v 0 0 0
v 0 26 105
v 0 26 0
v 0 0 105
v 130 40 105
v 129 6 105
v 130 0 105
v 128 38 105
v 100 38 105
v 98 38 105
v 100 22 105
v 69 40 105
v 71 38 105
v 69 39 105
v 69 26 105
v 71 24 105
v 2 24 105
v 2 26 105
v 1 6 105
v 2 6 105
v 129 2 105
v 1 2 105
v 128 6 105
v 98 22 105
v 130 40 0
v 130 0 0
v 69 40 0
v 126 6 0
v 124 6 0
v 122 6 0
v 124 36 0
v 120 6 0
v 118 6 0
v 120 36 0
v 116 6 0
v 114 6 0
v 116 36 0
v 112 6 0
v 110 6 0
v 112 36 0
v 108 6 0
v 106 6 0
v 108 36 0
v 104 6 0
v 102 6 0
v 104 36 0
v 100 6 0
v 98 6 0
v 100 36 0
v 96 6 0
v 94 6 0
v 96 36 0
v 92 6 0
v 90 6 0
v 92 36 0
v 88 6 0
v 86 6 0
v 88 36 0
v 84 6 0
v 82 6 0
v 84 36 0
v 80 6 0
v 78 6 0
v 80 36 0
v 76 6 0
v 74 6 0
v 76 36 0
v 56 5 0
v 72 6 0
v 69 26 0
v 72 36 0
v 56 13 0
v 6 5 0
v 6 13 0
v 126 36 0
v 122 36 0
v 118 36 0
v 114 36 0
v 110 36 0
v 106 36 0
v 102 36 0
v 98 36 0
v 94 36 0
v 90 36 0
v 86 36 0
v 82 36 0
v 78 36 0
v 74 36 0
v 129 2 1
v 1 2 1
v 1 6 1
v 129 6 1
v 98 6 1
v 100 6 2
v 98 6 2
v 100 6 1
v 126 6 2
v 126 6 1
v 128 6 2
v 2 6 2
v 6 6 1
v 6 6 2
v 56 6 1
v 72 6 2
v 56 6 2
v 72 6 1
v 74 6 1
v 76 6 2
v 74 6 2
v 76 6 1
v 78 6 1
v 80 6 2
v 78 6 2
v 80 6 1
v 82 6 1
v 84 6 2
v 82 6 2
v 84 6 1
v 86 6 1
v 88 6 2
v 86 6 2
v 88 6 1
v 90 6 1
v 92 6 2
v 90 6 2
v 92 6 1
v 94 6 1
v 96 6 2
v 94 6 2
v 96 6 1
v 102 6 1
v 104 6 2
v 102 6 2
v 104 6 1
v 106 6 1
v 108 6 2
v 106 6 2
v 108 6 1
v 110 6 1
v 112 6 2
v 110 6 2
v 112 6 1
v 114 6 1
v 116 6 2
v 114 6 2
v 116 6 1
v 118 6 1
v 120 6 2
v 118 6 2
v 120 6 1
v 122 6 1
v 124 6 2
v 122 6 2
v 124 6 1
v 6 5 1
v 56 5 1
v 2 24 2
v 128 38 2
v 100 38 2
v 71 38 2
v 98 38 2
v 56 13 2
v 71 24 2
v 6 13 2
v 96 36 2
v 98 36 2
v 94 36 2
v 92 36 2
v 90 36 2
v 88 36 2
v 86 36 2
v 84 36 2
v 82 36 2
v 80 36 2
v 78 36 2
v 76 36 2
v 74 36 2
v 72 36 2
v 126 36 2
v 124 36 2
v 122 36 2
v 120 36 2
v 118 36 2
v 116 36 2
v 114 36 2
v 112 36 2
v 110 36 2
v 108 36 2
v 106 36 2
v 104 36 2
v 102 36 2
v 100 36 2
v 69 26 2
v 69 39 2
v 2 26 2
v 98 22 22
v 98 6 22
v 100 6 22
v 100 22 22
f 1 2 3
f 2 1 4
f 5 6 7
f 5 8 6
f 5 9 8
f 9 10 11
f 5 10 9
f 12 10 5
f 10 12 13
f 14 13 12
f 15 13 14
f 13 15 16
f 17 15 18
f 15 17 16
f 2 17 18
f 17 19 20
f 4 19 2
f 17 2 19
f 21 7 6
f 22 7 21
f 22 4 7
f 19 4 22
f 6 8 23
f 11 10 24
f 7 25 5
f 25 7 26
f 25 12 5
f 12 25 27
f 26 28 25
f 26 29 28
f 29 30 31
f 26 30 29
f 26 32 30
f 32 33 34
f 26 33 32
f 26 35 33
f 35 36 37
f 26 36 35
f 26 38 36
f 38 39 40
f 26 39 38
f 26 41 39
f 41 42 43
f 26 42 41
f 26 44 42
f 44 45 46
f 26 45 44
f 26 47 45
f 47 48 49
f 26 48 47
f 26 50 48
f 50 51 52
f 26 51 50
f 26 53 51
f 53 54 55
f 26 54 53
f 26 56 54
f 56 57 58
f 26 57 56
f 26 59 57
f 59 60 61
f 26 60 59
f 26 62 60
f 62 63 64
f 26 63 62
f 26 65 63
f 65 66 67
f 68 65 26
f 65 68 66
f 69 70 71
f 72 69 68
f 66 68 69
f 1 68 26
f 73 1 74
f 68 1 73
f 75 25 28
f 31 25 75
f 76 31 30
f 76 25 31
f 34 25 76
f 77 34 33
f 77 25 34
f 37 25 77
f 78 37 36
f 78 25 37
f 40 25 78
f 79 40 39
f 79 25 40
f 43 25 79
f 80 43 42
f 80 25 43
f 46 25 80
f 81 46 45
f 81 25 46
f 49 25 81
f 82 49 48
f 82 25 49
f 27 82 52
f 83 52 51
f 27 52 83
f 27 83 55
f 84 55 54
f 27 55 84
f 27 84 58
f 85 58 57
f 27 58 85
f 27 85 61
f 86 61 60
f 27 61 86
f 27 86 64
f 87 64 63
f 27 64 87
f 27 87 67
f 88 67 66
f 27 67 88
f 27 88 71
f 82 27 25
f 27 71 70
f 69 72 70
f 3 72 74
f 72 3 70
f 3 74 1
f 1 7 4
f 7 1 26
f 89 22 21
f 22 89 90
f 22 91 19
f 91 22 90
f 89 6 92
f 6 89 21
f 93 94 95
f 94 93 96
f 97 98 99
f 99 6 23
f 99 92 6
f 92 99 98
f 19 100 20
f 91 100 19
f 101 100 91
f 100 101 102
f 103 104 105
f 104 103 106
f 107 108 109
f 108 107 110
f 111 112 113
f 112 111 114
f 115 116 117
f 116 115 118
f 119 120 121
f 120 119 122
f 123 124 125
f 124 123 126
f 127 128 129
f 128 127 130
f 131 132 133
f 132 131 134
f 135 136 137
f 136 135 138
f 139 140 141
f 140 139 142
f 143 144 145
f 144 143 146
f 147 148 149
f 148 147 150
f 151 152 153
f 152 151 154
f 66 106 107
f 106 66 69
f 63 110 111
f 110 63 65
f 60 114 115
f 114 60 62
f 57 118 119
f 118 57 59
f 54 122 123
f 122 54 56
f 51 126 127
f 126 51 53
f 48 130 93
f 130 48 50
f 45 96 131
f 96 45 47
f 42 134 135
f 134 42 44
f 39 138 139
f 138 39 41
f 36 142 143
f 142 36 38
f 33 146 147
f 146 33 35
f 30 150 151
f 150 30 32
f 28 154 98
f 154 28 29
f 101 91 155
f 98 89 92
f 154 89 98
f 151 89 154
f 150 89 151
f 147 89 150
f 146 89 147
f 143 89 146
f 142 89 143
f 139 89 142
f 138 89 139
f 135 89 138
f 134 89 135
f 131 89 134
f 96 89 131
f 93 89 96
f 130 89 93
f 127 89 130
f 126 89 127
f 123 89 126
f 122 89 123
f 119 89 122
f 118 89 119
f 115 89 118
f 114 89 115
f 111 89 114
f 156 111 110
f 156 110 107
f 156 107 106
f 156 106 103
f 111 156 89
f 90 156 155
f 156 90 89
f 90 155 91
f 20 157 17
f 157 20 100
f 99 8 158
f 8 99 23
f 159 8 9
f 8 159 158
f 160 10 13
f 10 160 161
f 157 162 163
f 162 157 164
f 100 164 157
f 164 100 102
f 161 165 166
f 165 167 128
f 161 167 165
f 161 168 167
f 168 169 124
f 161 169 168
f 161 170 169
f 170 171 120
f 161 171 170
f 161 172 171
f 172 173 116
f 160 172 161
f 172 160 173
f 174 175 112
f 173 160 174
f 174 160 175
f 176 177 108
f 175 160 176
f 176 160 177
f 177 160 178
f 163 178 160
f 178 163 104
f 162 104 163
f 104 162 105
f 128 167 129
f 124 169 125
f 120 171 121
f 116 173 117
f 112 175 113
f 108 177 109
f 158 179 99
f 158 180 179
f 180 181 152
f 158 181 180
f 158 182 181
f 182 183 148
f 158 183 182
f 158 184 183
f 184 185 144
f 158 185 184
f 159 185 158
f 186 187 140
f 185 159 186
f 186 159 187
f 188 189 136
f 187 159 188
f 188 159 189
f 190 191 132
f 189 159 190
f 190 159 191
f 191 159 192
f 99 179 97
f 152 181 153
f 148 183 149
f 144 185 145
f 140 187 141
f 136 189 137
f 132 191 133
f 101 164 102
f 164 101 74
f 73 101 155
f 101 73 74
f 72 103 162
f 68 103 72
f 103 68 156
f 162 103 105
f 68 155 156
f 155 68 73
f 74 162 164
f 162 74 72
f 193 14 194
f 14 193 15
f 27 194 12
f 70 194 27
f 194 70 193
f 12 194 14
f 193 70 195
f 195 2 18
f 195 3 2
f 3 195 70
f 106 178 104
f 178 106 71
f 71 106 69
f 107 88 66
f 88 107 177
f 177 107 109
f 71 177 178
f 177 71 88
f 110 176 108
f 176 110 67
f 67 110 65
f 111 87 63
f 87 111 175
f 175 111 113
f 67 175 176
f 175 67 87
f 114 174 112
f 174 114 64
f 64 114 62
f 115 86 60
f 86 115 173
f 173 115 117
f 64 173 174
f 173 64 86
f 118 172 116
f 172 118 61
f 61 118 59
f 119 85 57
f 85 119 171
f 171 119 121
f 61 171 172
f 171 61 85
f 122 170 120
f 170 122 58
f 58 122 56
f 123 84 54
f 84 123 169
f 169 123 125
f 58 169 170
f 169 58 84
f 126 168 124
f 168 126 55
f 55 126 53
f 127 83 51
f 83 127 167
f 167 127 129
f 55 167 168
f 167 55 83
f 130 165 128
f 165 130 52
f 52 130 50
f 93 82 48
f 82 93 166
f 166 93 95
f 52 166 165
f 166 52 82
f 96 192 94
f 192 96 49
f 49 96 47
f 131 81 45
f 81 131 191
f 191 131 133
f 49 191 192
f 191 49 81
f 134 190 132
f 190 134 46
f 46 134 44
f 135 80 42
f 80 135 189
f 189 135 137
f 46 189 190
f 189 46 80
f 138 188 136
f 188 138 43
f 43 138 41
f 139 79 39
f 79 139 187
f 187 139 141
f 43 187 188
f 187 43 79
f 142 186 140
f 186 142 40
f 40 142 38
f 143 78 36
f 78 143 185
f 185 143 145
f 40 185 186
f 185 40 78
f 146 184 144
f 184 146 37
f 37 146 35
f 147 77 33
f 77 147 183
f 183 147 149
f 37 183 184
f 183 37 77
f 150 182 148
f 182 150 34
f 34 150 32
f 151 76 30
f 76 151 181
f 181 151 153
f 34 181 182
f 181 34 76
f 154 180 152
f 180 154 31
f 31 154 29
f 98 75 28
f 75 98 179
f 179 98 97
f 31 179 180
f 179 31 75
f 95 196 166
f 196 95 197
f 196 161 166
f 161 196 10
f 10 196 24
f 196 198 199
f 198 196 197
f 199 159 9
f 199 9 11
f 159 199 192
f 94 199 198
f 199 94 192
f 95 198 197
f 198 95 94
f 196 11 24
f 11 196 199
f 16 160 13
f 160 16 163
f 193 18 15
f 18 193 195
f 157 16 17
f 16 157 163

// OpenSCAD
union(){
    difference(){
        cube([130,40,105]);
        translate([4,2,2]){
            cube([120,2,105]);
        }
        translate([1,2,1]){
            cube([128,4,105]);
        }
        translate([2,4,2]){
            cube([126,34,105]);
        }
        translate([6,5,0]){
            cube([50,8,2]);
        }
        translate([0,26,0]){
            cube([69,20,105]);
        }
        //relay cutouts
        translate([72,6,0]){
            cube([2,30,2]);
        }    
        translate([76,6,0]){
            cube([2,30,2]);
        }  
        translate([80,6,0]){
            cube([2,30,2]);
        }        
        translate([84,6,0]){
            cube([2,30,2]);
        }  
        translate([88,6,0]){
            cube([2,30,2]);
        }
        translate([92,6,0]){
            cube([2,30,2]);
        }
        translate([96,6,0]){
            cube([2,30,2]);
        }
        translate([100,6,0]){
            cube([2,30,2]);
        }
        translate([104,6,0]){
            cube([2,30,2]);
        }
        translate([108,6,0]){
            cube([2,30,2]);
        }
        translate([112,6,0]){
            cube([2,30,2]);
        }
        translate([116,6,0]){
            cube([2,30,2]);
        }
        translate([120,6,0]){
            cube([2,30,2]);
        }
        translate([124,6,0]){
            cube([2,30,2]);
        }
           
    }
    translate([98,6,2]){
        cube([2,34,20]);
    }
    translate([98,22,22]){
        cube([2,18,83]);
    }
    translate([2,24,2]){
        cube([69,2,103]);
    }
    translate([69,24,2]){
        cube([2,15,103]);
    }
    
    
}
